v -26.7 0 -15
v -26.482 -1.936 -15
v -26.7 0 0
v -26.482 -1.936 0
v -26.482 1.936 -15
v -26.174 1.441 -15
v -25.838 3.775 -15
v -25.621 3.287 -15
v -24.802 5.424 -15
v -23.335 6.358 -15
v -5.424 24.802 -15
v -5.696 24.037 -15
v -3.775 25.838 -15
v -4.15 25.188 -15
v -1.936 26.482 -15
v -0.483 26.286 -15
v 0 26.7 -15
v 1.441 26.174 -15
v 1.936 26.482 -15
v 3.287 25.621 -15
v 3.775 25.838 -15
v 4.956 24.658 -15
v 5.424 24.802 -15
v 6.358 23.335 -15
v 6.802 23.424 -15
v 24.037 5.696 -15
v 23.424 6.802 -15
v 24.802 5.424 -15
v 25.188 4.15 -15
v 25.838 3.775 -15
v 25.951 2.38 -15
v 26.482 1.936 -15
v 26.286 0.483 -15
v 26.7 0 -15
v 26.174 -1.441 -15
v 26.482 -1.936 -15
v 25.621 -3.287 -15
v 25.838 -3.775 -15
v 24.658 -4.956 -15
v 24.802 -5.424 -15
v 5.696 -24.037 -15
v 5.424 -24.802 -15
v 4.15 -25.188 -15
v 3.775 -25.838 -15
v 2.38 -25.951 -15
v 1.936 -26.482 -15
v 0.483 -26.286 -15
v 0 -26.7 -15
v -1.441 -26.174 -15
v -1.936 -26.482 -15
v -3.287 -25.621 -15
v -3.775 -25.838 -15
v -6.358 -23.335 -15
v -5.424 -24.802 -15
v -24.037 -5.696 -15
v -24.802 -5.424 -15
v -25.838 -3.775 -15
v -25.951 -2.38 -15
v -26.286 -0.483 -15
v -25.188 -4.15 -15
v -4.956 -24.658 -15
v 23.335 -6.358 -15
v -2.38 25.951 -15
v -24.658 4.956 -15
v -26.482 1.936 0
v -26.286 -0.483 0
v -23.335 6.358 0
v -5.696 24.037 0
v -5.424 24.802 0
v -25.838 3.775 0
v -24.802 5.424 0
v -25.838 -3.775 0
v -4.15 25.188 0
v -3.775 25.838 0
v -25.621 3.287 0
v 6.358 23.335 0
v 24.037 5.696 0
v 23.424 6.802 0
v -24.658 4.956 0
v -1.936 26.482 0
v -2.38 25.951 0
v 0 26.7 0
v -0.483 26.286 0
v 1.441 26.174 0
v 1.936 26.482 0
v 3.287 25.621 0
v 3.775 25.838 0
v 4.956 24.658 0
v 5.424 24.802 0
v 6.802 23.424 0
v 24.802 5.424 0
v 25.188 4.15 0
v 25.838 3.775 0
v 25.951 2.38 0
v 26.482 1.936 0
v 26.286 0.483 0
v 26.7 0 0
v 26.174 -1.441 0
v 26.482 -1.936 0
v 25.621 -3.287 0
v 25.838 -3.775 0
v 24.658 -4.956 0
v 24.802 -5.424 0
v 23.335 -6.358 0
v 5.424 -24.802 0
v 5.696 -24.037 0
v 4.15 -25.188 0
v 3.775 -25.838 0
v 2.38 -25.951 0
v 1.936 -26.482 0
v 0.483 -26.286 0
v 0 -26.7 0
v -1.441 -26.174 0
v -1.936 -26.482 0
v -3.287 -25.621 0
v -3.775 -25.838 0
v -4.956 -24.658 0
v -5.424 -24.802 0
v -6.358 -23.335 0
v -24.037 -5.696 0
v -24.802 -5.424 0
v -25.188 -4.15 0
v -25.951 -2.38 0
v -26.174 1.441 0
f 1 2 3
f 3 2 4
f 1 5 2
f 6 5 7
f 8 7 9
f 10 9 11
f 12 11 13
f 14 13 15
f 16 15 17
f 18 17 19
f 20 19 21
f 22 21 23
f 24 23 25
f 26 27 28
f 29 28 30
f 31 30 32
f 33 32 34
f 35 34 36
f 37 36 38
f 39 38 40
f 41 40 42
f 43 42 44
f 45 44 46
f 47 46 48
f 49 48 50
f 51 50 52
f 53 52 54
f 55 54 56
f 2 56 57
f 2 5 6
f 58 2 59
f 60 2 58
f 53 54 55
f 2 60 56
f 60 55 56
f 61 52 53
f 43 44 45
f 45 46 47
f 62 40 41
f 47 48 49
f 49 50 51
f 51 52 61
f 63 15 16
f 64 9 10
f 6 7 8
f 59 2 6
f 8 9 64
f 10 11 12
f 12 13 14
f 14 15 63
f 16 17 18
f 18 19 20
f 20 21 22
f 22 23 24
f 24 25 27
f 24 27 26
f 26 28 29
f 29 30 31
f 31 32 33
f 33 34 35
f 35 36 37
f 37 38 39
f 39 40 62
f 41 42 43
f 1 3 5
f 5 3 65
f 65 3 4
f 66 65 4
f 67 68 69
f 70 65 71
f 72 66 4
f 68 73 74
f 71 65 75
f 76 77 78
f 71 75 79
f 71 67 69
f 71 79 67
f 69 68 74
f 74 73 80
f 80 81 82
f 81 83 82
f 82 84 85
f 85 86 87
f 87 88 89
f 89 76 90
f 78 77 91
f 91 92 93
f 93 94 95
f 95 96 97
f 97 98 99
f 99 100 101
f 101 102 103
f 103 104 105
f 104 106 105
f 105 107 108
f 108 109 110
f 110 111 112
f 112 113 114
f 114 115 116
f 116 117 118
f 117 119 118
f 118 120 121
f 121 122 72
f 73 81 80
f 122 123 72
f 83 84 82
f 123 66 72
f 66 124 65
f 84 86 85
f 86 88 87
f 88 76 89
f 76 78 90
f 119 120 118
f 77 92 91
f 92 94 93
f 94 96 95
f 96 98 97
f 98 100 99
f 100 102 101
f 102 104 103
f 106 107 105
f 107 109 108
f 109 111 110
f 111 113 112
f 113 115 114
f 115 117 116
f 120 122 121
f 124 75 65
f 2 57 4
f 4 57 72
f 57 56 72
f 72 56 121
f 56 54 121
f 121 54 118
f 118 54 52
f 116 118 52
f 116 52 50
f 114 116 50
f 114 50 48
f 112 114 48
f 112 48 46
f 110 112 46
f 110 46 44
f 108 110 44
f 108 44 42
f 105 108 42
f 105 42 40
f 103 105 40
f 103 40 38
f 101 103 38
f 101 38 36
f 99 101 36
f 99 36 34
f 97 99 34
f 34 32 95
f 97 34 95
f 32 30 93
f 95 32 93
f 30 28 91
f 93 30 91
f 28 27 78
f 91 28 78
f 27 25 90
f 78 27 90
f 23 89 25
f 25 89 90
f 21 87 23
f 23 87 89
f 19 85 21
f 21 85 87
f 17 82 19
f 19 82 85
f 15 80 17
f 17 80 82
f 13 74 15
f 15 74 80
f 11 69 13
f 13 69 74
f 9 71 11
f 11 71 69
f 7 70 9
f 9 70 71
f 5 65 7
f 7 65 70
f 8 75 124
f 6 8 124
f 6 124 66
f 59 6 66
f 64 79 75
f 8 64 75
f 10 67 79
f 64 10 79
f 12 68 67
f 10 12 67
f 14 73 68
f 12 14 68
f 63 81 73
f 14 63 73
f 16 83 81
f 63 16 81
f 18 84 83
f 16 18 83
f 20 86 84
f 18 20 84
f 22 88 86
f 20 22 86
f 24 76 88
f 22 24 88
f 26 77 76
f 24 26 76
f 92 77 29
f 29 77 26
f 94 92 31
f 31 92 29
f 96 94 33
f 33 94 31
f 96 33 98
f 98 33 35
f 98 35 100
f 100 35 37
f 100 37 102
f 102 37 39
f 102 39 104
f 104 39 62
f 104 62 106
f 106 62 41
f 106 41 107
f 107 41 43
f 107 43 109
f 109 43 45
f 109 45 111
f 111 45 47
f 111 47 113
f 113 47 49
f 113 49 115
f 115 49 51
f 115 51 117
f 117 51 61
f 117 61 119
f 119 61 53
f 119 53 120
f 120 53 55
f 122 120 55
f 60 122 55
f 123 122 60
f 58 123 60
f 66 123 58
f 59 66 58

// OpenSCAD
module makeMainShape(shrinkValue){
	translate([shrinkValue/2,0,shrinkValue])
	cube([boardLength-shrinkValue,boardWidth-shrinkValue*2,totalHeight],true);
	rotate([0,90,0])translate([0,0,(boardLength+cowlingLength)/2-1-shrinkValue])
	intersection(){
		cylinder(cowlingLength+1, cowlingTailRadius-shrinkValue, cowlingTipRadius-shrinkValue,true);
		translate([-shrinkValue,0,0]) cube([totalHeight,boardWidth-shrinkValue*2,cowlingLength-shrinkValue*2],true);
	}
}


tipDiameter = 15;
shoulderRadius = 18;
noseLength = 40;
wallThickeness = 0.4;
boomDiameter = 7.5;
boomLength = 825;
fuselageCornerRadius = 8.7;

module makeServo(){
	servoWidth = 23;
	servoHeight = 12;
	servoDepth = 23;
	servoMountThickness = 3;
	servoMountOffset = 7;
	servoMountWidth = 33;

	cube([servoWidth,servoHeight,servoDepth],true);
	translate([0,0,servoMountOffset/2]) cube([servoMountWidth,servoHeight,servoMountThickness],true);
}

module makeNose(offset){
	hull(){
		translate([0,0,noseLength]) sphere(tipDiameter-offset);
		translate([0,0,-offset]) mainFuselage(offset, 1);
		//sphere(shoulderRadius-offset);
	}
}

module hollowNose(){
	difference(){
		makeNose(0);
		union(){
			makeNose(wallThickeness);
			translate([0,0,-shoulderRadius/2])
				cube([shoulderRadius*2,shoulderRadius*2,shoulderRadius],true);
		}
	}
}

module solidNose(){
	difference(){
		union(){
			makeNose(0);	
			translate([0,0,-5])
				mainFuselage(wallThickeness*2, 5);
		}
		cylinder(noseLength, boomDiameter, boomDiameter,true);
	}
}

module mainFuselage(offset, length){
hull()
for ( i = [0 : 3] )
	{
		rotate( i * 360 / 4, [0, 0, 1])
		translate([0, shoulderRadius, 0])
		cylinder(length,fuselageCornerRadius-offset,fuselageCornerRadius-offset);
	}
}
module fuselageLength(length){
	difference(){
		translate([0,0,-length])mainFuselage(0, length);
		translate([0,0,-length-wallThickeness])mainFuselage(wallThickeness, length+wallThickeness*2);
	}
}
module makeServoGroup(){
	makeServo();
	translate([28,0,9]) rotate(180,[1,0,0]) makeServo();
}
//solidNose();
fuselageLength(15);
//hollowNose();
//mainFuselage(0,1);
%makeServoGroup();
